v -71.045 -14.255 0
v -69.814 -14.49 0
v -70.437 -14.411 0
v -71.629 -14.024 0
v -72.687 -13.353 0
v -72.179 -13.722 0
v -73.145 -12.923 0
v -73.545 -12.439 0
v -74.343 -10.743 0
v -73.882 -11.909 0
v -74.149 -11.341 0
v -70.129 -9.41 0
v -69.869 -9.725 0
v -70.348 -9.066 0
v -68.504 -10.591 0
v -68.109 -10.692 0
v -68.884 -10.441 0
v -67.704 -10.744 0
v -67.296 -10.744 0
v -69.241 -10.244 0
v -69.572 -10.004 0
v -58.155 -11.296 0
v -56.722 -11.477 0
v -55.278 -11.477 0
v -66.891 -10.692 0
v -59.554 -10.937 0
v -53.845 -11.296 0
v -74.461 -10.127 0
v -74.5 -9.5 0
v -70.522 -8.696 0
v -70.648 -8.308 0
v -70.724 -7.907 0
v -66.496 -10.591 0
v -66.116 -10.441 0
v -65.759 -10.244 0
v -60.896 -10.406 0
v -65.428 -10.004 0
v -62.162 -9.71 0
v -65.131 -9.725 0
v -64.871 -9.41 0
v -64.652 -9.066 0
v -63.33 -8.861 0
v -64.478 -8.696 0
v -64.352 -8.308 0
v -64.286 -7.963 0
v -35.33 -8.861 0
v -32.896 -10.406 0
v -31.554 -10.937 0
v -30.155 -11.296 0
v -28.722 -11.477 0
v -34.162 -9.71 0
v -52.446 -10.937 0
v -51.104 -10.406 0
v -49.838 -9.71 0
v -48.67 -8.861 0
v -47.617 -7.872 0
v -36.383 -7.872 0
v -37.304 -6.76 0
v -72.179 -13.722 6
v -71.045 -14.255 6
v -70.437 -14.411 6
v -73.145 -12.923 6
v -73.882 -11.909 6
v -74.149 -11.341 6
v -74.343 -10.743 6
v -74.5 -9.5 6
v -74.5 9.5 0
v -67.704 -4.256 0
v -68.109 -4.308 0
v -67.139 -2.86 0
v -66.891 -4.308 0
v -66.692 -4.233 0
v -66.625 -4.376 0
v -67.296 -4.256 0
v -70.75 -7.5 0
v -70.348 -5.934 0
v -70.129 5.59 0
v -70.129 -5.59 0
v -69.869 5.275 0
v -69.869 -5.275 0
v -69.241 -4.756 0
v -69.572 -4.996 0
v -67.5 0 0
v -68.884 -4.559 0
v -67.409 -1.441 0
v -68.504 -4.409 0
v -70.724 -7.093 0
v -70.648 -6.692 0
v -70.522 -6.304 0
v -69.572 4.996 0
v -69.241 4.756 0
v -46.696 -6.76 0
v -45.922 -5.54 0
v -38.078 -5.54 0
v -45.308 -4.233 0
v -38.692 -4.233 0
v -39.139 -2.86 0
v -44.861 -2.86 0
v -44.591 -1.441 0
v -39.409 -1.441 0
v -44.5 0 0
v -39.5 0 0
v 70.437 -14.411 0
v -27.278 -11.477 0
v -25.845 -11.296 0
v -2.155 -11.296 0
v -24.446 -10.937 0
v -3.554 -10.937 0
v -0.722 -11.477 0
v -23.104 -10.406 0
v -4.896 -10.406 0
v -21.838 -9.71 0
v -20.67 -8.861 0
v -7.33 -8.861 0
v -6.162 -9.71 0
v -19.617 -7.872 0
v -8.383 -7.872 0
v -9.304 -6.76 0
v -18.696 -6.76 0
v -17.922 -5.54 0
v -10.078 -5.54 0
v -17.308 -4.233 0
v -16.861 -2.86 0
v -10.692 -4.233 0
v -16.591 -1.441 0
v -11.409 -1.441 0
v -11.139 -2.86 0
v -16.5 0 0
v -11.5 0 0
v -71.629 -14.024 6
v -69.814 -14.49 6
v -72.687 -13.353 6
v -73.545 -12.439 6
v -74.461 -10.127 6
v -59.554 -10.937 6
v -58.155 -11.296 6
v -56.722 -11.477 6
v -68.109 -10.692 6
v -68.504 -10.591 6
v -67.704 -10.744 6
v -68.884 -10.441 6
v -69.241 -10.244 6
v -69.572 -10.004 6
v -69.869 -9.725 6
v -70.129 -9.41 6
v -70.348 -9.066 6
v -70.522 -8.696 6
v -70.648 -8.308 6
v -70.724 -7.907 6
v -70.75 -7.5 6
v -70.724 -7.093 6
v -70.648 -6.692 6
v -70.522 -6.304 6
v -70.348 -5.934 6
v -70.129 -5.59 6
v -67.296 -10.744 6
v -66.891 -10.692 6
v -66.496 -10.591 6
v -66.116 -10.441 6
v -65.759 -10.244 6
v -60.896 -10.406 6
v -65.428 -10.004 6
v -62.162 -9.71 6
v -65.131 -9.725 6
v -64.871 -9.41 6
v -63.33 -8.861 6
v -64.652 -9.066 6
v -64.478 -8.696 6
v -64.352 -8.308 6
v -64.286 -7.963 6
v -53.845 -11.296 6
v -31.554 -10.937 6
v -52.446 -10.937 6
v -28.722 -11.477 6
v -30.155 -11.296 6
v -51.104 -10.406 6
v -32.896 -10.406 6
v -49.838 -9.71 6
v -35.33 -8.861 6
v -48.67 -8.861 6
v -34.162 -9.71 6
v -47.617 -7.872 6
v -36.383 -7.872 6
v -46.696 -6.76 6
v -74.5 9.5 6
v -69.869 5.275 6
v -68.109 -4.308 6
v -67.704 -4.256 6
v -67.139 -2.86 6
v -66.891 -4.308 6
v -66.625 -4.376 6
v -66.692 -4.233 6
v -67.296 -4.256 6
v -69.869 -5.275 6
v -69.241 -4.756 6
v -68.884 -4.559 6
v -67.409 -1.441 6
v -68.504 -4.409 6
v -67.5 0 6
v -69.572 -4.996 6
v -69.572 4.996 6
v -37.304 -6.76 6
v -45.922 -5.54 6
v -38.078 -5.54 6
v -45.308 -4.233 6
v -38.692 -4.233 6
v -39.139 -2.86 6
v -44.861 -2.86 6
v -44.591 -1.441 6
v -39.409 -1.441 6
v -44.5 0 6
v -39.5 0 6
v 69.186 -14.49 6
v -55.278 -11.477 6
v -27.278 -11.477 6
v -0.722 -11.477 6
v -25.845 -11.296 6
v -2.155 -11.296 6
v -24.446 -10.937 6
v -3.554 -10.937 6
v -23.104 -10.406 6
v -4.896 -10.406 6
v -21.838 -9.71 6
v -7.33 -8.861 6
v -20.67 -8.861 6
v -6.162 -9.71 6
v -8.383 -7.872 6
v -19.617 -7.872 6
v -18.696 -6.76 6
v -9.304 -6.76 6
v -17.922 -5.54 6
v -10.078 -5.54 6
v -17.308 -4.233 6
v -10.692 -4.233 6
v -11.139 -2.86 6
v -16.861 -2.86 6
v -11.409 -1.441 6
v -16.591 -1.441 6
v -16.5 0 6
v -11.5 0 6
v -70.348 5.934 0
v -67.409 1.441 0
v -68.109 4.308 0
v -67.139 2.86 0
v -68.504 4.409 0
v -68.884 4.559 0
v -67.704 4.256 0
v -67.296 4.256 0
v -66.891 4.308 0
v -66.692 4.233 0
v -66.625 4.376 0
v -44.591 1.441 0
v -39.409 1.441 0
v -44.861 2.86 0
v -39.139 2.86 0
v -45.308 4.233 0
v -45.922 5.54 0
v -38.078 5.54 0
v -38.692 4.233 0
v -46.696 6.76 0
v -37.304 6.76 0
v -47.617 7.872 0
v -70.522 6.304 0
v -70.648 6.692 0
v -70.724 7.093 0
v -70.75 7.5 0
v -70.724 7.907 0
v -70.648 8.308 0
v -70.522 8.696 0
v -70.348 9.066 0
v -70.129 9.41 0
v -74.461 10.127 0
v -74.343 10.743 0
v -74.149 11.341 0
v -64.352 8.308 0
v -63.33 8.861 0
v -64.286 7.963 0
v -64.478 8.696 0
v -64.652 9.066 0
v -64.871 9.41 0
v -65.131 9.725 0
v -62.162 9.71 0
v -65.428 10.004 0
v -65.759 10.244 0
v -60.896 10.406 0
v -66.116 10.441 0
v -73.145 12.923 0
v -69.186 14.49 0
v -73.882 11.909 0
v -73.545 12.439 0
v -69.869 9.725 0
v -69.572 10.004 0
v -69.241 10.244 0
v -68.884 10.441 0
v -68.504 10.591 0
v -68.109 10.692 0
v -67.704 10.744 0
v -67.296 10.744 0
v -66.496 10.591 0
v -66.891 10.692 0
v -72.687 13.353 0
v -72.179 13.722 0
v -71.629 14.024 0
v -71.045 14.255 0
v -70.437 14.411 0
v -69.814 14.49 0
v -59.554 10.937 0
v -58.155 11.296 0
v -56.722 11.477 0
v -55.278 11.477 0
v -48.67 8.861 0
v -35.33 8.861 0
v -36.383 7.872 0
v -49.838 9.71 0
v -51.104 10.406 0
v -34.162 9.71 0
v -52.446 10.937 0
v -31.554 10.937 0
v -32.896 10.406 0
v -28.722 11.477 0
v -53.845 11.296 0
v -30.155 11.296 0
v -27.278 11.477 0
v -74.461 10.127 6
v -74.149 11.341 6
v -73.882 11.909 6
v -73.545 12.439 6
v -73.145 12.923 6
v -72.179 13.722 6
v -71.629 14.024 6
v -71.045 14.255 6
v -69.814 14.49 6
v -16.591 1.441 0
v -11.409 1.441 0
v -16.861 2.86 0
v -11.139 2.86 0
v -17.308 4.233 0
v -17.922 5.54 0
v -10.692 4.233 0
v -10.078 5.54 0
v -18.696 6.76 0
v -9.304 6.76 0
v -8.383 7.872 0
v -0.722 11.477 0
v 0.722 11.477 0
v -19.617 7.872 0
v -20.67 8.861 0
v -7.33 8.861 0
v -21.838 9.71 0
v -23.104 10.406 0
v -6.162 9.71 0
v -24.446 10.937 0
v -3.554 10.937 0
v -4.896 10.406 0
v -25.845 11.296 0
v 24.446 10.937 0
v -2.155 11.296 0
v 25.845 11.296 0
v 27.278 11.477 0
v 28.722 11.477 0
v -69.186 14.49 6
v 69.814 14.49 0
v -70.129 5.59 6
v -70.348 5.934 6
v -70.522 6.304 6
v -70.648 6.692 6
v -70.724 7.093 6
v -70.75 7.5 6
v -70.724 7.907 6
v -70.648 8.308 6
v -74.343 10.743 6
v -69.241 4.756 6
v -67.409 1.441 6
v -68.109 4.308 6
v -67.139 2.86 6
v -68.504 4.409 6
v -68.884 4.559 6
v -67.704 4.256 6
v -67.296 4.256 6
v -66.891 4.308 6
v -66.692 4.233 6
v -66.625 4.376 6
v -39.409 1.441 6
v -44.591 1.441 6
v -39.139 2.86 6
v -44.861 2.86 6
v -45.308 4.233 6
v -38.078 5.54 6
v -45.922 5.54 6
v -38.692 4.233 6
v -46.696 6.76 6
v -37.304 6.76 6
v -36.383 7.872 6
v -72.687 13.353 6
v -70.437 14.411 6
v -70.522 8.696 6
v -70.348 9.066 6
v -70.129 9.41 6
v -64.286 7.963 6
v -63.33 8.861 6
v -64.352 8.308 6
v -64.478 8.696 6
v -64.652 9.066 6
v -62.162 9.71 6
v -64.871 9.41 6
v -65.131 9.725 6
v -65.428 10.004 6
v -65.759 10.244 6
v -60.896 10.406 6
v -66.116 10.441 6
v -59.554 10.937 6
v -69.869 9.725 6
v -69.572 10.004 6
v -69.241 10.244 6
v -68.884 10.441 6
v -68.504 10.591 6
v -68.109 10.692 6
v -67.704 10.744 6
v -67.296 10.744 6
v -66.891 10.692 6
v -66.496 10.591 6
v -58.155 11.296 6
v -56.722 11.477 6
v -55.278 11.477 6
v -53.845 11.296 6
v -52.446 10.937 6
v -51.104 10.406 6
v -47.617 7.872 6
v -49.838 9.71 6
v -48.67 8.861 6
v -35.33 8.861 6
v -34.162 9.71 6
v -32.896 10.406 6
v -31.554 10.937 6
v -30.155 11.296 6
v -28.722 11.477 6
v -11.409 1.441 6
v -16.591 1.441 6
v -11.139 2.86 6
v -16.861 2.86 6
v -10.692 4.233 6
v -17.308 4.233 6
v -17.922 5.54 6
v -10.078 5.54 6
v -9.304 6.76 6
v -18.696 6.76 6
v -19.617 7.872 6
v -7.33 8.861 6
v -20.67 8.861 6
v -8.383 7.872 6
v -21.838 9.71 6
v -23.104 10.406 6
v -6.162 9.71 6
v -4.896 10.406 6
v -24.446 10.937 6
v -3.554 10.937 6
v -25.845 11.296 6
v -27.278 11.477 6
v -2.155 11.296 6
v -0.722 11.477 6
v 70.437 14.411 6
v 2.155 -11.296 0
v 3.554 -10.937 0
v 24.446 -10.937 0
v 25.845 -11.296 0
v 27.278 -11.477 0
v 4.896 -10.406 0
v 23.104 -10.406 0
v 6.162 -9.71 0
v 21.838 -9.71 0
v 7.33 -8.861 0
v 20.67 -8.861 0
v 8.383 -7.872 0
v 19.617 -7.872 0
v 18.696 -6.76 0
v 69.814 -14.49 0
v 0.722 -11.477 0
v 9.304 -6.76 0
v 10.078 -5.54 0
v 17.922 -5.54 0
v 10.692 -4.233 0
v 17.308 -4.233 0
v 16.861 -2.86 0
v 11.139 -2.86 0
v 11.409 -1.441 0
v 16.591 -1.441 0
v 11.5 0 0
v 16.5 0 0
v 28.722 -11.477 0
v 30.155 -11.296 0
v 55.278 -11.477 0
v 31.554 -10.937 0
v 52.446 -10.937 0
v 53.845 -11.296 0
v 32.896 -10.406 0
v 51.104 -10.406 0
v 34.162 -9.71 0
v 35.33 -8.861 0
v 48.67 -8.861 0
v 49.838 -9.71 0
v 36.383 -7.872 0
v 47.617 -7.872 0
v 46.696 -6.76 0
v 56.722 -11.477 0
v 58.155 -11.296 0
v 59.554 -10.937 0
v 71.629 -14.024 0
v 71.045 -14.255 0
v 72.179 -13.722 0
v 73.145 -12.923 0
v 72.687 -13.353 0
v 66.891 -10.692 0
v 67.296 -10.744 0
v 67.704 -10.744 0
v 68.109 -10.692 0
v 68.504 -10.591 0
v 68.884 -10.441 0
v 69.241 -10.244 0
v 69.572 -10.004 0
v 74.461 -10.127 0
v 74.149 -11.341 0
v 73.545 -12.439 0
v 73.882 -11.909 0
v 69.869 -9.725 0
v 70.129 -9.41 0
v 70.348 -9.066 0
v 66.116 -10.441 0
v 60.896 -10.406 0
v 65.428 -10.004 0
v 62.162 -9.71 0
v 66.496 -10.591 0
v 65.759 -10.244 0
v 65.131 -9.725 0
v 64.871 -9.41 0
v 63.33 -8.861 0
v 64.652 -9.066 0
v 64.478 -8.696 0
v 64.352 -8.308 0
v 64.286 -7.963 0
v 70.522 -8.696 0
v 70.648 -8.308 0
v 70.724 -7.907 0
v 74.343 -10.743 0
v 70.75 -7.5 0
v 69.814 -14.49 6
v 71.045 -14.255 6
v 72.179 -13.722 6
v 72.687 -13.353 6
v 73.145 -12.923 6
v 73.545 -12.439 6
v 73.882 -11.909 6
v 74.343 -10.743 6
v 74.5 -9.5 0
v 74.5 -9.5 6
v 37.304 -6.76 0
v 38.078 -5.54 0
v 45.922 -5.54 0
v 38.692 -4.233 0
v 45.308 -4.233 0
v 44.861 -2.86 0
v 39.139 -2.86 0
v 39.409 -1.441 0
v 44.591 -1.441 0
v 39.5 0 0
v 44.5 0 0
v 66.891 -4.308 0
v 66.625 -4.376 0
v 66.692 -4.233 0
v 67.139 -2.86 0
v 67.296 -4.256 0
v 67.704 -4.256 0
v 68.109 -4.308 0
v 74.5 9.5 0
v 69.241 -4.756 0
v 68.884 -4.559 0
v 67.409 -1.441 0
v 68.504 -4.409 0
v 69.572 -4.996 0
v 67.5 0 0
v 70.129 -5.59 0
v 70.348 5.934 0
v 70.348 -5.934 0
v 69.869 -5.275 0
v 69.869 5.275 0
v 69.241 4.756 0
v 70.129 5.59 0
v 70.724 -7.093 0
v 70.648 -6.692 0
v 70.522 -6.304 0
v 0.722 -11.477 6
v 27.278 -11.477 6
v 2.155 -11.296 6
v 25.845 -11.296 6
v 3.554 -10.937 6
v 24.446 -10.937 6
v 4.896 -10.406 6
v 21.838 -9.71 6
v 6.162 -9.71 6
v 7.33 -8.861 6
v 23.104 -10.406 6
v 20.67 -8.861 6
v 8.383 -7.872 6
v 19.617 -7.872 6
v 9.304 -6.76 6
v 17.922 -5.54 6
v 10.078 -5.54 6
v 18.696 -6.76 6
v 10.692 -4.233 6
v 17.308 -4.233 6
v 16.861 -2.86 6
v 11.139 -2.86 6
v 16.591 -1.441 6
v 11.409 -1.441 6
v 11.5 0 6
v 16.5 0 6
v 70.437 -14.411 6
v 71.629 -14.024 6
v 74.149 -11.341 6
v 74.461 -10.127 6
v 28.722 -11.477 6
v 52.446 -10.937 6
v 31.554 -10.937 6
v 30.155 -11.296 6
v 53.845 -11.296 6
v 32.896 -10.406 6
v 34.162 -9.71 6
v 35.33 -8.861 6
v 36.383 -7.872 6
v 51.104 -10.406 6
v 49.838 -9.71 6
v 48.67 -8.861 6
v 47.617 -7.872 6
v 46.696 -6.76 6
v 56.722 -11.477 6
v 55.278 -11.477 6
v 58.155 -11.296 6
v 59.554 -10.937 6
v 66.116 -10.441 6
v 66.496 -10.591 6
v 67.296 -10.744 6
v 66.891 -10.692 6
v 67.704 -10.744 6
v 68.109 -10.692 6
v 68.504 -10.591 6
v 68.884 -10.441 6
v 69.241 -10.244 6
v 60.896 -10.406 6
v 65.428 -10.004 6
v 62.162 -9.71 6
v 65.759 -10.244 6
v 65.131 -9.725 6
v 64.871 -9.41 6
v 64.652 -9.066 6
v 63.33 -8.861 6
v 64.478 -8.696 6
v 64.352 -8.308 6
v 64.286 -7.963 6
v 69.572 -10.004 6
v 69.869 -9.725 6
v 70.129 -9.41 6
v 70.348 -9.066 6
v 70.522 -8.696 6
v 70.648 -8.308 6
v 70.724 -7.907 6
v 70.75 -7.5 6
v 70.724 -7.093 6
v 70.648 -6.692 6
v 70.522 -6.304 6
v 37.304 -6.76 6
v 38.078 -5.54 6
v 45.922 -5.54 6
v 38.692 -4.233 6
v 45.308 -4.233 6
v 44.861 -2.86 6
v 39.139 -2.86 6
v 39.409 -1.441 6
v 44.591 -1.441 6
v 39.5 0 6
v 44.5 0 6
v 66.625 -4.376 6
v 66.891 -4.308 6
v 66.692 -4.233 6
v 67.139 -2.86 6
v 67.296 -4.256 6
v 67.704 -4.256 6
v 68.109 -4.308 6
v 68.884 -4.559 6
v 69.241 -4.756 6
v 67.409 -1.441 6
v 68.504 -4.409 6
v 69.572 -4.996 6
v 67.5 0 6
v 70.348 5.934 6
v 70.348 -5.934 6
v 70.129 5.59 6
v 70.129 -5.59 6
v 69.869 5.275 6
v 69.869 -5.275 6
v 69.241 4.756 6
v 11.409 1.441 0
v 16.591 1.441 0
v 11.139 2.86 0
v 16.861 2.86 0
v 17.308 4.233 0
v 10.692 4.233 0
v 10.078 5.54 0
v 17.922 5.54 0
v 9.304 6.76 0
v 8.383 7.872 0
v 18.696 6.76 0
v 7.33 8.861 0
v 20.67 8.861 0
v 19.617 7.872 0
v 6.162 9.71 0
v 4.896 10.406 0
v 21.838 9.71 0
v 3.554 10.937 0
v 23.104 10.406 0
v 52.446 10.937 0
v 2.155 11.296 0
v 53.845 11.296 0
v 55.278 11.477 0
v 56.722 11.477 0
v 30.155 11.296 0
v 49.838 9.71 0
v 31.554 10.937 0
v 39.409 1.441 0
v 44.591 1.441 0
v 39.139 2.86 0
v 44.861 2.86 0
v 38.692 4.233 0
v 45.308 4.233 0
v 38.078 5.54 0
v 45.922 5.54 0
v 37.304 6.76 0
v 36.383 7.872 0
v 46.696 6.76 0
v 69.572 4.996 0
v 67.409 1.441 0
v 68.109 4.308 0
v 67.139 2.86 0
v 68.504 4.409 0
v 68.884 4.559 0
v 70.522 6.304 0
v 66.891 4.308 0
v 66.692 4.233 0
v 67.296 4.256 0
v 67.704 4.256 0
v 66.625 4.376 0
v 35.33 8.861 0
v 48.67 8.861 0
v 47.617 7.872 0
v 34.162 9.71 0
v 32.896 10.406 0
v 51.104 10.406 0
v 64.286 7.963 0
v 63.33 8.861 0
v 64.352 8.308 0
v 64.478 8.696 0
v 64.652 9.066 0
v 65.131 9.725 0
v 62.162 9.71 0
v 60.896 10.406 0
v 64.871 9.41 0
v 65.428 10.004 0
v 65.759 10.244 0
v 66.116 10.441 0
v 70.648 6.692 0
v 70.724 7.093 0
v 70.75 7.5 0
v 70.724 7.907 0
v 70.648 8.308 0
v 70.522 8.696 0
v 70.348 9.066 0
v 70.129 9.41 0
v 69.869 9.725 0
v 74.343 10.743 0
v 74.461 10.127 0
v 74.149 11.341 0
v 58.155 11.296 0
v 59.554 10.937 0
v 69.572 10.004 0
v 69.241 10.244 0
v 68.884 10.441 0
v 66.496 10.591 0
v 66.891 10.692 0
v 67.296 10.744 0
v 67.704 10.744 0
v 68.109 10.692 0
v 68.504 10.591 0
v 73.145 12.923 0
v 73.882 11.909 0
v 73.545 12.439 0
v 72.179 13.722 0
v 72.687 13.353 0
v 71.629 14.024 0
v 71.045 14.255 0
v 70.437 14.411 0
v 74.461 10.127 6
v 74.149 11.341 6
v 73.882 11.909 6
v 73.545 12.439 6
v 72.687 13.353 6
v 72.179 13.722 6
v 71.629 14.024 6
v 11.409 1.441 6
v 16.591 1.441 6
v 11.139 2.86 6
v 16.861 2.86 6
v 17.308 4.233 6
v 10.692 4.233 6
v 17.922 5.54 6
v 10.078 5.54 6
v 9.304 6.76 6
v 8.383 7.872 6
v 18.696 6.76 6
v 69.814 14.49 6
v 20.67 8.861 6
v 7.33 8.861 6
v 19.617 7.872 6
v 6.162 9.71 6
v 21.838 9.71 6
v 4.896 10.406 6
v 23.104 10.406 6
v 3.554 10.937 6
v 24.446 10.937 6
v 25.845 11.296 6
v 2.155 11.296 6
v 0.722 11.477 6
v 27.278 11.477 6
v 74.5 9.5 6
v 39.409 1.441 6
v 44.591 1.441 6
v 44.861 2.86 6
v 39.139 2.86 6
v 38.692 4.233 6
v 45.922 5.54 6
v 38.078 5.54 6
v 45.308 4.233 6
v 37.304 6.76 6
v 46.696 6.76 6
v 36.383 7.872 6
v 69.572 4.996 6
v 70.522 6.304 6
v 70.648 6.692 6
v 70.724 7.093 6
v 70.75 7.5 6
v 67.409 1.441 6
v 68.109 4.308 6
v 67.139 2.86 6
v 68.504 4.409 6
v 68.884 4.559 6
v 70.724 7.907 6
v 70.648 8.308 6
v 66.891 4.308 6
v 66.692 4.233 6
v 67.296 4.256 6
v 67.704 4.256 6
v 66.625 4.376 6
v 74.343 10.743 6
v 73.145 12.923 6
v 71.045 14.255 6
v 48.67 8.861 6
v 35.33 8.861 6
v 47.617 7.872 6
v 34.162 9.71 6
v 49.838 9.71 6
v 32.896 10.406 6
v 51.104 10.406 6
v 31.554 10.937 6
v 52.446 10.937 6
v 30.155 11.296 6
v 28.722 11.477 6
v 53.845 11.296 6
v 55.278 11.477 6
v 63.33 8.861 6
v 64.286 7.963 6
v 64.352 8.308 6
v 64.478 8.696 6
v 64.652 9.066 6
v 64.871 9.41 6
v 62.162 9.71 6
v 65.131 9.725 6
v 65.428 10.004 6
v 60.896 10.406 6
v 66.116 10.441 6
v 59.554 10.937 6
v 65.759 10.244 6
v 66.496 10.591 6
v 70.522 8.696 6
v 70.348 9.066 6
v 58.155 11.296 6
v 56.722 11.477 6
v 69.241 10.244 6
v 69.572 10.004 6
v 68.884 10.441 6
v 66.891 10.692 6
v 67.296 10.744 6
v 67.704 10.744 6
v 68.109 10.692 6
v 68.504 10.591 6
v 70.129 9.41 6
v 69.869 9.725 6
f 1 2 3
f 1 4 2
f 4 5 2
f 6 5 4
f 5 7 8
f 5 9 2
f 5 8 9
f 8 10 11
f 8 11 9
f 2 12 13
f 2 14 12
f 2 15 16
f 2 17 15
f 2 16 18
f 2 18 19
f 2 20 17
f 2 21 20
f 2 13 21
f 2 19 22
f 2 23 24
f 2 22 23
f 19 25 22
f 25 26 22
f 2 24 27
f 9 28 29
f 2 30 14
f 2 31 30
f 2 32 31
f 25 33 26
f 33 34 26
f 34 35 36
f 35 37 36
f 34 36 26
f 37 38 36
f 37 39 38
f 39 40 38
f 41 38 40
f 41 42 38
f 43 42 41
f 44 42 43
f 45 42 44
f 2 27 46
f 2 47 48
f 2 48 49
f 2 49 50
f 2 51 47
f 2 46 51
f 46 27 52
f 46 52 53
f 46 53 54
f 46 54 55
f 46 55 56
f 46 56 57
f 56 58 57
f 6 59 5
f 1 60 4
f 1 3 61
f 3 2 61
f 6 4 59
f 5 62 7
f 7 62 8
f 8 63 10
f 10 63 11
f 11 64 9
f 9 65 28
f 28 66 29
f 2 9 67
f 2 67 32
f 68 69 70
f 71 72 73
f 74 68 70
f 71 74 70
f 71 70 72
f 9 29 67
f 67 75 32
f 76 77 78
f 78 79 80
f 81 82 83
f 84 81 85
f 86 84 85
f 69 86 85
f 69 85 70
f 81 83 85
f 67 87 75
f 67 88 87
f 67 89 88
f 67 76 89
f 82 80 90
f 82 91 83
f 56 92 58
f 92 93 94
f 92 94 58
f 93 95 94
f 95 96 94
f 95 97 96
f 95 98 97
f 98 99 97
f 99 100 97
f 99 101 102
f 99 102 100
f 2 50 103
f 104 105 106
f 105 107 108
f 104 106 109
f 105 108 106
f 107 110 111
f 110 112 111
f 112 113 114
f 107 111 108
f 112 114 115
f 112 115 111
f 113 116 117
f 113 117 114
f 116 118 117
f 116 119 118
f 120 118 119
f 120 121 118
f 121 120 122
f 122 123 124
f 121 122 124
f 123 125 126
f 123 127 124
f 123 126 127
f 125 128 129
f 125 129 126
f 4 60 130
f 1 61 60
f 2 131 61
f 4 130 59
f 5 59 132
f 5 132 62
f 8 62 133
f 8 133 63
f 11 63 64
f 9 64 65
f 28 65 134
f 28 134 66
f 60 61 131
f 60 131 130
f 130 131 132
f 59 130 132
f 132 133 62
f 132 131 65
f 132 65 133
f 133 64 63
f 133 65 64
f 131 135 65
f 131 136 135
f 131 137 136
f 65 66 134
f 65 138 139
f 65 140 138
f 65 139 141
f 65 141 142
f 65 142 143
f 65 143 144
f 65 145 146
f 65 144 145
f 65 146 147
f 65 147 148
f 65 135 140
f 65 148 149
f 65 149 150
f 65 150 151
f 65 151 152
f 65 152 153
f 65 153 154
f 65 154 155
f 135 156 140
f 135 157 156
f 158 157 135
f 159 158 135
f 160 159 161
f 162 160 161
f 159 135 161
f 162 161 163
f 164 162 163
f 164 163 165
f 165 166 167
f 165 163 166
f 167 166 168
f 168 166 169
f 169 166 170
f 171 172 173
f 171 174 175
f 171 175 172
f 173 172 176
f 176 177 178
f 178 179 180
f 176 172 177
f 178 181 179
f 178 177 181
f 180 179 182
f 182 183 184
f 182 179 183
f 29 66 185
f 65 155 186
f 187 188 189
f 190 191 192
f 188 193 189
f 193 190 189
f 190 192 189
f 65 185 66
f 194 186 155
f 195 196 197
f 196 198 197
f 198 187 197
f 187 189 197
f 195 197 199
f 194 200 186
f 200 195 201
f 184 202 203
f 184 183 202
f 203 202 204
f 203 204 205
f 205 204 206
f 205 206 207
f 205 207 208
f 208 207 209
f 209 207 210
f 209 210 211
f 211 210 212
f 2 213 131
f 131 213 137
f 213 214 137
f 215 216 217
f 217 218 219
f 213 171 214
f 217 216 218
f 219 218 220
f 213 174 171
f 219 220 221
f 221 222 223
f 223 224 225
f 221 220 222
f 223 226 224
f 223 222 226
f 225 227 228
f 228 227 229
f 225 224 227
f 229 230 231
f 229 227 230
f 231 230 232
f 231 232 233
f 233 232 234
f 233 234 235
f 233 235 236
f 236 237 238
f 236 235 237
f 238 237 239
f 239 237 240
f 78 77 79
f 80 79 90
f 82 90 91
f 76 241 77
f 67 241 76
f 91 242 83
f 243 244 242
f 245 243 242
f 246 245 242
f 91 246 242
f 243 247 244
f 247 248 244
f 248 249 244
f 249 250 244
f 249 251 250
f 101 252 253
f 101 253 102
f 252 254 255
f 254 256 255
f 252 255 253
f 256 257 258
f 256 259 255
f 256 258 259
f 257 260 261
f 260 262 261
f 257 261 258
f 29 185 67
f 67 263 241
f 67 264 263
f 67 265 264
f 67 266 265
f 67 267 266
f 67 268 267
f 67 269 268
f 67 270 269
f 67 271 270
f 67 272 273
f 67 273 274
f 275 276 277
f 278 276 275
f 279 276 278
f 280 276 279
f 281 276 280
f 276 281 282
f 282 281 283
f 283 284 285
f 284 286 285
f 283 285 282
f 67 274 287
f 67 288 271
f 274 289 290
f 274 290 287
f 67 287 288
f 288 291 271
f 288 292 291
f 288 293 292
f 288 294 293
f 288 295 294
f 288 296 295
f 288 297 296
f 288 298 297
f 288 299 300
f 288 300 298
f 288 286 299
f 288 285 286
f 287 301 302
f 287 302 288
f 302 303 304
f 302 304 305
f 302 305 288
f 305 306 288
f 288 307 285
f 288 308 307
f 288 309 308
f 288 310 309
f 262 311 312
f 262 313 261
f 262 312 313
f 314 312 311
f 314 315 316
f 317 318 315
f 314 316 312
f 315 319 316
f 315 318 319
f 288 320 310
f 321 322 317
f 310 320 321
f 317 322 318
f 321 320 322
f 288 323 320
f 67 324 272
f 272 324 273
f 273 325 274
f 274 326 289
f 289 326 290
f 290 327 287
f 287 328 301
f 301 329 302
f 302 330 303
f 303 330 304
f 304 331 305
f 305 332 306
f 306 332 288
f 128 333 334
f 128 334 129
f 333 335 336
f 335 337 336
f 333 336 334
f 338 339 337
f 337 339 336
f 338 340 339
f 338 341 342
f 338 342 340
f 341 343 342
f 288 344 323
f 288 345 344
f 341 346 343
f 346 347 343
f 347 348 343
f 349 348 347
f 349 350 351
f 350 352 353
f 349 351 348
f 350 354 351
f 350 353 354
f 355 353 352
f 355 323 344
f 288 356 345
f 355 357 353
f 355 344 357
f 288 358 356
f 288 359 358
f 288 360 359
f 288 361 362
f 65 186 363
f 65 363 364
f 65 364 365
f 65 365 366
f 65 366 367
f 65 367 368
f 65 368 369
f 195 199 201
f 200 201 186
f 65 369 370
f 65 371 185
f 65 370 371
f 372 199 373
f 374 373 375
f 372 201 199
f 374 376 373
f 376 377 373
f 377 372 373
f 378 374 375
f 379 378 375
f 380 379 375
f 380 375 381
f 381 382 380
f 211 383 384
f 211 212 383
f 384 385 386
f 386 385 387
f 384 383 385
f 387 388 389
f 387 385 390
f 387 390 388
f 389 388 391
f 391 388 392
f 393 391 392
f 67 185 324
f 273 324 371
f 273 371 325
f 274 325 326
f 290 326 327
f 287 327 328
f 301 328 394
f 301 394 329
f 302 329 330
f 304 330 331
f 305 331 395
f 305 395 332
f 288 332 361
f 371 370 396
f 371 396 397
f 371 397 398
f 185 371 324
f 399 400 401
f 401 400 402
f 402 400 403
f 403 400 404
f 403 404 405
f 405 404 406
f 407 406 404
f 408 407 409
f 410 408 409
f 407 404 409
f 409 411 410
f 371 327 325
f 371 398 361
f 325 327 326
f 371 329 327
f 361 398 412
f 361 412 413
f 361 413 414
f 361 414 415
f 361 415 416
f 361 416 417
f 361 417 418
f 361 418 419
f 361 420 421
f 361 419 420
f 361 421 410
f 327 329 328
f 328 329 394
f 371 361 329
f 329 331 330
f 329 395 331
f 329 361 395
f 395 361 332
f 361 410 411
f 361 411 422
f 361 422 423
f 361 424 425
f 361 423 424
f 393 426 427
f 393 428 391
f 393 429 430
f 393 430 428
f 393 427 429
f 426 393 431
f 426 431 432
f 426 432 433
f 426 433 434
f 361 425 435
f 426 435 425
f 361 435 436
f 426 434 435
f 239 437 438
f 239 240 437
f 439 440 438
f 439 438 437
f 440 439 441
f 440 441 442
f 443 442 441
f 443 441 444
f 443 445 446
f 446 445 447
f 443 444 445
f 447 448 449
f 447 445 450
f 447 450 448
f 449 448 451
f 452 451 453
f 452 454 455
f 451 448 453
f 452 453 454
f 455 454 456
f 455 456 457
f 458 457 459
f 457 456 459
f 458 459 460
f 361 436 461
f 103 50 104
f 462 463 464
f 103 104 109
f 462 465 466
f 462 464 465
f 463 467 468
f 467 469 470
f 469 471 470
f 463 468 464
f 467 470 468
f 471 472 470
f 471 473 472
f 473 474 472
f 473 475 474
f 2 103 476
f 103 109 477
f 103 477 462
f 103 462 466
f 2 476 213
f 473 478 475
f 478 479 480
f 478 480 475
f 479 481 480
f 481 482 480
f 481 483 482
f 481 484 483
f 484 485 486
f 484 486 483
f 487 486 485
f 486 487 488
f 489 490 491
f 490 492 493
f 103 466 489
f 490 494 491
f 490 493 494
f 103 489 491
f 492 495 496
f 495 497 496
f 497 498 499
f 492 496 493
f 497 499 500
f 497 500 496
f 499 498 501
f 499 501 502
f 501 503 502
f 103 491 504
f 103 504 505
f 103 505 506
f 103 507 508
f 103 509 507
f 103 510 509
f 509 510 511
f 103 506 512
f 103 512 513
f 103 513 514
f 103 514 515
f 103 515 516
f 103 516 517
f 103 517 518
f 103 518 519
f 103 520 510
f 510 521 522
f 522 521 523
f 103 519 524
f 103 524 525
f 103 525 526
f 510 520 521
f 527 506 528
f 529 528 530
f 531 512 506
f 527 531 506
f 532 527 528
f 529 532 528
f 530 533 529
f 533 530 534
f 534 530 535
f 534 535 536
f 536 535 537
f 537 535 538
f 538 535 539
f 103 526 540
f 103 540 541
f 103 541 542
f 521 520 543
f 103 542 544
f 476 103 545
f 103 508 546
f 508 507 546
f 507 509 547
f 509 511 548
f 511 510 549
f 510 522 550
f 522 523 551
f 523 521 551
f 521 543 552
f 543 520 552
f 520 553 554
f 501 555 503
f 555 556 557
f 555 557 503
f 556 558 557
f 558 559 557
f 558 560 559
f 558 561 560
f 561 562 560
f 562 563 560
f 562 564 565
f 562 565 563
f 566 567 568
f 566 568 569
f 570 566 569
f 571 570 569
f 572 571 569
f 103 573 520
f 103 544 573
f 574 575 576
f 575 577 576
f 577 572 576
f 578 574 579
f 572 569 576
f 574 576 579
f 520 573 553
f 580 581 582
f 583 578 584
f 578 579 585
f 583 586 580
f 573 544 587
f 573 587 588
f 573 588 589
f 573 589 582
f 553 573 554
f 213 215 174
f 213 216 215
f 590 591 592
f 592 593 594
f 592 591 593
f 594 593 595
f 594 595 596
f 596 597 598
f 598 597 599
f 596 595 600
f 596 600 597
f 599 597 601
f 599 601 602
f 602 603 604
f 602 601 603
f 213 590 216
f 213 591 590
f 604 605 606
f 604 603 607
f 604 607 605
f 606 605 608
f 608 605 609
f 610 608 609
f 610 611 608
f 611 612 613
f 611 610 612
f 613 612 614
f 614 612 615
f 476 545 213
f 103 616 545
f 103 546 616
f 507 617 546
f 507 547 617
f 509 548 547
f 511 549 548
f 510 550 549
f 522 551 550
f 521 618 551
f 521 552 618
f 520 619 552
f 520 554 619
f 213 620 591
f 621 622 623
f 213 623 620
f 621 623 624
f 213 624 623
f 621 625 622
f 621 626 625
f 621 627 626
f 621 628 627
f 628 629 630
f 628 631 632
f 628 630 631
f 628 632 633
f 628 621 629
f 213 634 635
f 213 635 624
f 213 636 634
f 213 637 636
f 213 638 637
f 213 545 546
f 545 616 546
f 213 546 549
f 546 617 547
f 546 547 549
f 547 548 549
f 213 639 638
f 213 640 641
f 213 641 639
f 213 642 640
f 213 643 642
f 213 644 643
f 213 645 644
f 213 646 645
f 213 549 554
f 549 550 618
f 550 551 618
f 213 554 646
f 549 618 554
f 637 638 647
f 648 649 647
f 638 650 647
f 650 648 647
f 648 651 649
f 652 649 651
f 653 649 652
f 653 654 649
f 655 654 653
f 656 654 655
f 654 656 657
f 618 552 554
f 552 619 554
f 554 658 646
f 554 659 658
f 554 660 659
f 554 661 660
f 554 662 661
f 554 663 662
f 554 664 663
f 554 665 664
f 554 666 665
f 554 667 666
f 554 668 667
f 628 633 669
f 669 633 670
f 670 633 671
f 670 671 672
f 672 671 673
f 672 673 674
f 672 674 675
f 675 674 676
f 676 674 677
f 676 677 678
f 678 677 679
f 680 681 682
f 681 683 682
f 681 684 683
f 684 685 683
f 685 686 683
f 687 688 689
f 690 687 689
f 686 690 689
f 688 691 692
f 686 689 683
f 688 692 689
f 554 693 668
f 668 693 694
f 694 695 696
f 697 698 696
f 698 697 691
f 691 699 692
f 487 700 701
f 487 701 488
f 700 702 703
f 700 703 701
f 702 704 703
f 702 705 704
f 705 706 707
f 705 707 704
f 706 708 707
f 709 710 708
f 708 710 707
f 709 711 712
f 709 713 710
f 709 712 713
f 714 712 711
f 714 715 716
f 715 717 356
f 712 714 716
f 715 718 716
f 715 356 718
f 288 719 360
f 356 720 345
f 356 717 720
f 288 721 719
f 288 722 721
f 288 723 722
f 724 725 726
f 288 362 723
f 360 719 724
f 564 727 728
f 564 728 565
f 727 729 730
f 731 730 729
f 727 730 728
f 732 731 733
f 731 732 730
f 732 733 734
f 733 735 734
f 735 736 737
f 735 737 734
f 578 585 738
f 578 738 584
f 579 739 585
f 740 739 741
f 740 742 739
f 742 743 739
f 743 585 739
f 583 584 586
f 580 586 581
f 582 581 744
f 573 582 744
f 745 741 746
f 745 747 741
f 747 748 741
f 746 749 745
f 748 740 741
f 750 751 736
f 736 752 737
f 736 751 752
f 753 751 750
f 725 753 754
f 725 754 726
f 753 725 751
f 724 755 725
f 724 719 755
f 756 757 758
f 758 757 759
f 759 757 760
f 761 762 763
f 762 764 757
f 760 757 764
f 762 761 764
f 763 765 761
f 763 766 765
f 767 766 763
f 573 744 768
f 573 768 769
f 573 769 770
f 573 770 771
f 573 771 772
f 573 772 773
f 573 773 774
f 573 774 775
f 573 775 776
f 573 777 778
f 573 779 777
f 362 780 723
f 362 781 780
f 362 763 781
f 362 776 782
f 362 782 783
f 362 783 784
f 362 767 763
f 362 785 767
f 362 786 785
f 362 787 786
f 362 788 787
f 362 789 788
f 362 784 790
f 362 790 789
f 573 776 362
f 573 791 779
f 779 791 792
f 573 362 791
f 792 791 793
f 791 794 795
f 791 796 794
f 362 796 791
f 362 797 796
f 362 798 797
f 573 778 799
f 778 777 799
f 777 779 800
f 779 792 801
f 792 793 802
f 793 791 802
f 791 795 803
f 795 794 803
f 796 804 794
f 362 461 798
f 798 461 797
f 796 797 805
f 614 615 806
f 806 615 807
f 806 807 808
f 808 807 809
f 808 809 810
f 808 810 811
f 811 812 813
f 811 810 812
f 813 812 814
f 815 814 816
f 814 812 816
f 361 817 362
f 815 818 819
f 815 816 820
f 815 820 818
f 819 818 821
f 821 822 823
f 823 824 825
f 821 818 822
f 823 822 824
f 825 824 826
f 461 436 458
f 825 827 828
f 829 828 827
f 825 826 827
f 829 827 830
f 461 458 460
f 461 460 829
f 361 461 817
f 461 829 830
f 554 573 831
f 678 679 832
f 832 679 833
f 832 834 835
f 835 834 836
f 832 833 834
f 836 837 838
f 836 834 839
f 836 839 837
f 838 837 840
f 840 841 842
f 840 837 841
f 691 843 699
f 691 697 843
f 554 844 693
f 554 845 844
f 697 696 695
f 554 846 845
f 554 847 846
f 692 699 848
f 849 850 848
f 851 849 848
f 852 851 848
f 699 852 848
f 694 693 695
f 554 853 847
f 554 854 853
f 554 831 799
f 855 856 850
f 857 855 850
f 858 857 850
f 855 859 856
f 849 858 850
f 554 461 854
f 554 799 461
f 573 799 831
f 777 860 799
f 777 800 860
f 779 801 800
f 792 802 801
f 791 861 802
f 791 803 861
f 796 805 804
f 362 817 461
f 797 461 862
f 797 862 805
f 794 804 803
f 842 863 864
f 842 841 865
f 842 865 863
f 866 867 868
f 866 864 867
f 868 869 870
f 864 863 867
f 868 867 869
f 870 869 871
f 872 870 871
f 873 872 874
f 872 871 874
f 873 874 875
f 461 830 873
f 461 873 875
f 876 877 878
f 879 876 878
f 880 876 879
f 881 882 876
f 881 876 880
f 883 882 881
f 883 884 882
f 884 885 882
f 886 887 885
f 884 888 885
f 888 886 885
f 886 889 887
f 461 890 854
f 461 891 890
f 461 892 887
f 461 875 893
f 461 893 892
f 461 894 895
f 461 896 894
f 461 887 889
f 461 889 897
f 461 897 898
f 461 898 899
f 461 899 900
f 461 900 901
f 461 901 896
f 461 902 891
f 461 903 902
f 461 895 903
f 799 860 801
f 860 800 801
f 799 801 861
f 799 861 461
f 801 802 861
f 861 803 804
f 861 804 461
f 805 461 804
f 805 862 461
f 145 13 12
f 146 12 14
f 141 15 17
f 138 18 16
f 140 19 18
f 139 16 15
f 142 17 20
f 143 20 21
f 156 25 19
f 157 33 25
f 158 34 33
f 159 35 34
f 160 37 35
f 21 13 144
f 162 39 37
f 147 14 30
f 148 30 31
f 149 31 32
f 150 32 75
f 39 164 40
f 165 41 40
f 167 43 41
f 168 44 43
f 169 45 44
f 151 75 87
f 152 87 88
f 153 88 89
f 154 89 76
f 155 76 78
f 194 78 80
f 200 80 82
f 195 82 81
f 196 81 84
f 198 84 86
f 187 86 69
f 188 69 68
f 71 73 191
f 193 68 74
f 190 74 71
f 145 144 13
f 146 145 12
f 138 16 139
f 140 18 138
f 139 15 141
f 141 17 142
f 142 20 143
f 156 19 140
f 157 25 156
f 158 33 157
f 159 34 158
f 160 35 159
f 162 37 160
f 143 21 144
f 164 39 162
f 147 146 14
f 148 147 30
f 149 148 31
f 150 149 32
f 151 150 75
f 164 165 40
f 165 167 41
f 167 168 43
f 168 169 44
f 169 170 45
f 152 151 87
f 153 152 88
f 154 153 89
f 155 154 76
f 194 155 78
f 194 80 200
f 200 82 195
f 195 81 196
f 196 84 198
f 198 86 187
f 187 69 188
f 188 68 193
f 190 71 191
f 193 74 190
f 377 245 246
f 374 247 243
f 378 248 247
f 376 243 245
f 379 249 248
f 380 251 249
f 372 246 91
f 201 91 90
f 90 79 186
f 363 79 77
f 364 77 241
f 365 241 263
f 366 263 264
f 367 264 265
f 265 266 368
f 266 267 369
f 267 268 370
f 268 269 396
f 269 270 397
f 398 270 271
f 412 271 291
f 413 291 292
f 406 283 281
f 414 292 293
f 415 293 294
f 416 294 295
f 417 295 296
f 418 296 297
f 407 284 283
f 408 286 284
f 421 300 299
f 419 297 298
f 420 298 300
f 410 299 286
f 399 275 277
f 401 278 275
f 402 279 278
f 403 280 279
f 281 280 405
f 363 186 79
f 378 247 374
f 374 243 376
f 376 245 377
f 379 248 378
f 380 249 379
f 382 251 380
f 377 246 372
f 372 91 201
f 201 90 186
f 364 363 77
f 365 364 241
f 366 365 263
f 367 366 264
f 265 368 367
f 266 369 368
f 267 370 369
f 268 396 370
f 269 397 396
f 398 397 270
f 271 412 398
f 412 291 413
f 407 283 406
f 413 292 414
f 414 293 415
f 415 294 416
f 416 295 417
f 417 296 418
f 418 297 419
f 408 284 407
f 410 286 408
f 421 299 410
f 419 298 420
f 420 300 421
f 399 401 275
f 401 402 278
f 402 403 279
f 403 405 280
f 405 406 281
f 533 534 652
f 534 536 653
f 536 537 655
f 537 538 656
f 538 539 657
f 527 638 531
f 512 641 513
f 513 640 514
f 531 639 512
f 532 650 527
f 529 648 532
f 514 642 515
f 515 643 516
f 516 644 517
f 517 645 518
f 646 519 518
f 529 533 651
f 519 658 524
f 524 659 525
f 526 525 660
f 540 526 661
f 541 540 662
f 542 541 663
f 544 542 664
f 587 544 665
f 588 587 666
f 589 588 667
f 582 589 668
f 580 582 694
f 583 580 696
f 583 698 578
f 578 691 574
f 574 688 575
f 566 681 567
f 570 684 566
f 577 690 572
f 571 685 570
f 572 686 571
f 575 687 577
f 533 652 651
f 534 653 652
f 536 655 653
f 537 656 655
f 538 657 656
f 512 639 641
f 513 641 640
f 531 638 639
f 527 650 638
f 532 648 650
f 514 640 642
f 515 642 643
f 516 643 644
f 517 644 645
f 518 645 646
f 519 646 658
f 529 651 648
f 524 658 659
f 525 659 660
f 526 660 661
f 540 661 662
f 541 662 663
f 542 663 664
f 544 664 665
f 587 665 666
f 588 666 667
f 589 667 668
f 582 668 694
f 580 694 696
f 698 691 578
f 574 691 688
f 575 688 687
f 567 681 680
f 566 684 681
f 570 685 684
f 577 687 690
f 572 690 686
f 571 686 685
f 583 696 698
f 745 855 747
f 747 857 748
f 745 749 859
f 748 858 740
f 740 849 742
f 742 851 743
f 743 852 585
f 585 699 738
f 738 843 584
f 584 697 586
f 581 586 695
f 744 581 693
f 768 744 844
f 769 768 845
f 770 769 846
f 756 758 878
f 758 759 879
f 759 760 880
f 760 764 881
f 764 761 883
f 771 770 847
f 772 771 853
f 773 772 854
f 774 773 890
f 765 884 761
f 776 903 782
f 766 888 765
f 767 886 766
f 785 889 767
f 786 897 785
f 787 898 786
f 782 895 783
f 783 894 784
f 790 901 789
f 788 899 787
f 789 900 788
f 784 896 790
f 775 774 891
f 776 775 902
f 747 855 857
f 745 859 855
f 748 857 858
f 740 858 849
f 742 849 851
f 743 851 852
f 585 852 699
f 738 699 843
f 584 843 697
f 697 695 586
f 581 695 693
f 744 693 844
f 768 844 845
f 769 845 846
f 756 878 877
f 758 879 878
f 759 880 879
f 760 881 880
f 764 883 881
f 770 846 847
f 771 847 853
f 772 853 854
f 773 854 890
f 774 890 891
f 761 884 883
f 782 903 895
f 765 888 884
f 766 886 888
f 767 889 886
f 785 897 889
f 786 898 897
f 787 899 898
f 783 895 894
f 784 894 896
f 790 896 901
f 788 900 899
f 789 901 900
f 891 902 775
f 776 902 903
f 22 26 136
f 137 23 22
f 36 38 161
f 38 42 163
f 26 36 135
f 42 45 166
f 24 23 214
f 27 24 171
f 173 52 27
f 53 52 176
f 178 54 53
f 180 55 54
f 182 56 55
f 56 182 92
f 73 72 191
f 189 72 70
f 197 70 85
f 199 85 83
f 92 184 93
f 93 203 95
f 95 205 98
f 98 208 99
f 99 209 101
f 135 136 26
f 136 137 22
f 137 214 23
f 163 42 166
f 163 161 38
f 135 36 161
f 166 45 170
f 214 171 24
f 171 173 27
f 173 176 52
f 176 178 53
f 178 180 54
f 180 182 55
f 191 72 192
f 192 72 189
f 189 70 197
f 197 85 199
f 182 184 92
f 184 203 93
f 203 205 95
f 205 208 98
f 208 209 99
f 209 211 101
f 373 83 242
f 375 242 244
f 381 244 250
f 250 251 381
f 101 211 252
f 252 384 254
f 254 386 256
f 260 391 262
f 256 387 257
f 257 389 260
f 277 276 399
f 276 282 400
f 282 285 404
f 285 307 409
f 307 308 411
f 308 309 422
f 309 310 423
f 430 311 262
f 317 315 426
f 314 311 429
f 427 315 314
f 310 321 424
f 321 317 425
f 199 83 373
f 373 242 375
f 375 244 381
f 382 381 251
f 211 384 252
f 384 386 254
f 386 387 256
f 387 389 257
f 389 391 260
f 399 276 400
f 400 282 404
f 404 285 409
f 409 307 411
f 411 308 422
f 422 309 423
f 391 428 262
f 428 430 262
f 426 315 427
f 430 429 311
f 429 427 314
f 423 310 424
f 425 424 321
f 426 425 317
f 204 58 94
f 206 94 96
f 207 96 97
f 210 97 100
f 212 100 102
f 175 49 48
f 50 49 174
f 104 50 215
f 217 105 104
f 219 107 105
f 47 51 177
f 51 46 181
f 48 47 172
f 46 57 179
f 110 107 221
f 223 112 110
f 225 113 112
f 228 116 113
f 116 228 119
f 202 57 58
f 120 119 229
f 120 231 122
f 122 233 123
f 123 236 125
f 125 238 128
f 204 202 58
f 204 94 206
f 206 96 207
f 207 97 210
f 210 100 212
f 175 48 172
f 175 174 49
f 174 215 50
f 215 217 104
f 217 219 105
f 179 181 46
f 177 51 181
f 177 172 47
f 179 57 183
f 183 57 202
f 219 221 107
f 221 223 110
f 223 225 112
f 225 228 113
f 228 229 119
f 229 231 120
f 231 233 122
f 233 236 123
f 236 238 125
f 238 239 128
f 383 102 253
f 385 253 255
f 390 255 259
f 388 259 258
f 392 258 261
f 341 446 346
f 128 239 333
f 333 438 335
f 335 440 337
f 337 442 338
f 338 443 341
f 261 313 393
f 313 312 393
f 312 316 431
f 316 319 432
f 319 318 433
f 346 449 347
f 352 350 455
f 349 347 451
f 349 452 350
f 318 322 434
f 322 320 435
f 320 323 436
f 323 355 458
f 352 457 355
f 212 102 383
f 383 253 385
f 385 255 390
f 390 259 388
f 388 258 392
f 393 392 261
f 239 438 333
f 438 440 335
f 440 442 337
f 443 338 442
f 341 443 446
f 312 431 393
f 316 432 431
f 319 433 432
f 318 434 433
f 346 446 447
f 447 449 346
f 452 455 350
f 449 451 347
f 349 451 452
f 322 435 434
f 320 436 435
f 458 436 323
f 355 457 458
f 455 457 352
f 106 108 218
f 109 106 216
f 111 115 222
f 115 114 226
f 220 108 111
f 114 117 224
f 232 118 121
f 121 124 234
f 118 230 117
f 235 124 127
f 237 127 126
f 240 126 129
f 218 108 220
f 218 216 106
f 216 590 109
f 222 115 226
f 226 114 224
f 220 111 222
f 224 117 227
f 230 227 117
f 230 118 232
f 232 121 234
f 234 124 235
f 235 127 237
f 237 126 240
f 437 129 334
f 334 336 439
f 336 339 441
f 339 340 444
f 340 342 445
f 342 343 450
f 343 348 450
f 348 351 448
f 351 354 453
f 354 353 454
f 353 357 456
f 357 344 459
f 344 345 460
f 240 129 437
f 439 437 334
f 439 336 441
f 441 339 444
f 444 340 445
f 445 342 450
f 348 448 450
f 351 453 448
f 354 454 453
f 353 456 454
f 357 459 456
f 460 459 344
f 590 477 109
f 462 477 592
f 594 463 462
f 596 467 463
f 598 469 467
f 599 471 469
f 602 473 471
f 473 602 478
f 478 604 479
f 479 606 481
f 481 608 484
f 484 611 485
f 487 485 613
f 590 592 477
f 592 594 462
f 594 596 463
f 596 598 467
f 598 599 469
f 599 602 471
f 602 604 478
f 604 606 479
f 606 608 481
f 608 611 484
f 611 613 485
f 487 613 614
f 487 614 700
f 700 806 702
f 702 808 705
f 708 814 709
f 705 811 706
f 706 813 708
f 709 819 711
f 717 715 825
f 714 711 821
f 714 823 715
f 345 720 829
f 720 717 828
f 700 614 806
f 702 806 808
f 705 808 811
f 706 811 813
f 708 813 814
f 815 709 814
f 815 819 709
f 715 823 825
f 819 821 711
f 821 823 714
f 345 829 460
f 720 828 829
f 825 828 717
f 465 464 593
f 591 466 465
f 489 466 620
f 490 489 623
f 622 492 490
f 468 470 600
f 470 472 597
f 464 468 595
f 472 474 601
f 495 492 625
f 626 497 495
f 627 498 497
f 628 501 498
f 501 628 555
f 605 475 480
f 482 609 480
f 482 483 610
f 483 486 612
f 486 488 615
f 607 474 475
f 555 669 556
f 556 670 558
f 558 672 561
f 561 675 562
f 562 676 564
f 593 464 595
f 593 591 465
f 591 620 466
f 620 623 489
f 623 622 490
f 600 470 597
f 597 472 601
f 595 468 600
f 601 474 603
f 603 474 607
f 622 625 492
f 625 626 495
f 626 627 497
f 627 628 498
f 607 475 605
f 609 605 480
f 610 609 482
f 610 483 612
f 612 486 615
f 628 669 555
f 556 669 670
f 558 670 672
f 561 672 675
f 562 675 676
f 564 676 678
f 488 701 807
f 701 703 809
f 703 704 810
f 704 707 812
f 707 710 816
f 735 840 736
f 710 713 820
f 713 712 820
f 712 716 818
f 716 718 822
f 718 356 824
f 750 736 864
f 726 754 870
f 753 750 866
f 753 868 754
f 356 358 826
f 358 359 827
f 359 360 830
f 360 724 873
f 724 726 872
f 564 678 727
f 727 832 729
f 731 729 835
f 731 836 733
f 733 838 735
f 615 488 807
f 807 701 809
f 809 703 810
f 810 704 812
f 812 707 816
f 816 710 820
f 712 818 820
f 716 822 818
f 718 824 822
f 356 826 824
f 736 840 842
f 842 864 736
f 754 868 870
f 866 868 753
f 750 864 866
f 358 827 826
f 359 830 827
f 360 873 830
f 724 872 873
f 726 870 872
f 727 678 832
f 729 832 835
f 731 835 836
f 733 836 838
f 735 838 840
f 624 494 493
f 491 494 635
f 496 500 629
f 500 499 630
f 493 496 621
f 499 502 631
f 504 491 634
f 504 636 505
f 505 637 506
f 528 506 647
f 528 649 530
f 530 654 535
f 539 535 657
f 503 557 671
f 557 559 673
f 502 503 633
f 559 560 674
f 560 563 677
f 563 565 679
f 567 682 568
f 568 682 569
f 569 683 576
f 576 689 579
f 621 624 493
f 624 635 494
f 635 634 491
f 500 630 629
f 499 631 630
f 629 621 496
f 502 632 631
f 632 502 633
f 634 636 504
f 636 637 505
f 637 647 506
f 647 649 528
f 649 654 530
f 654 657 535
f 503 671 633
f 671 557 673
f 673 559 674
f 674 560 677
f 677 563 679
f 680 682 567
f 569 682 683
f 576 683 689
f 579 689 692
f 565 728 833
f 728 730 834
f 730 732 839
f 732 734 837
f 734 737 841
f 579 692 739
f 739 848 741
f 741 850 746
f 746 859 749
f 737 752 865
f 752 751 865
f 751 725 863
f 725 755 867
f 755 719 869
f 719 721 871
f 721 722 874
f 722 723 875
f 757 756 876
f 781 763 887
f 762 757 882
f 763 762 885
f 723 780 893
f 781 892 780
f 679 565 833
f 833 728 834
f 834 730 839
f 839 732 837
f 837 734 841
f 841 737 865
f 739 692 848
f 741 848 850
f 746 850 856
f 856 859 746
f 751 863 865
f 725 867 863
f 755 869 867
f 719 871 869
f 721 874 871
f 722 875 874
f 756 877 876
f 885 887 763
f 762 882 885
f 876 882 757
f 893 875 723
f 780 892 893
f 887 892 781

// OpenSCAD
$fn = 50;

difference() {
	union() {
		hull() {
			translate(v = [-69.5, 9.5, 0]) {
				cylinder(h = 6, r = 5);
			}
			translate(v = [69.5, 9.5, 0]) {
				cylinder(h = 6, r = 5);
			}
			translate(v = [-69.5, -9.5, 0]) {
				cylinder(h = 6, r = 5);
			}
			translate(v = [69.5, -9.5, 0]) {
				cylinder(h = 6, r = 5);
			}
		}
	}
	union() {
		translate(v = [-67.5, -7.5, -100.0]) {
			cylinder(h = 200, r = 3.25);
		}
		translate(v = [-67.5, 7.5, -100.0]) {
			cylinder(h = 200, r = 3.25);
		}
		translate(v = [67.5, -7.5, -100.0]) {
			cylinder(h = 200, r = 3.25);
		}
		translate(v = [67.5, 7.5, -100.0]) {
			cylinder(h = 200, r = 3.25);
		}
		translate(v = [-67.5, -7.5, -100.0]) {
			cylinder(h = 200, r = 1.8);
		}
		translate(v = [-67.5, 7.5, -100.0]) {
			cylinder(h = 200, r = 1.8);
		}
		translate(v = [67.5, -7.5, -100.0]) {
			cylinder(h = 200, r = 1.8);
		}
		translate(v = [67.5, 7.5, -100.0]) {
			cylinder(h = 200, r = 1.8);
		}
		translate(v = [-56.0, 0, 0.0]) {
			cylinder(h = 6, r = 11.5);
		}
		translate(v = [-28.0, 0, 0.0]) {
			cylinder(h = 6, r = 11.5);
		}
		cylinder(h = 6, r = 11.5);
		translate(v = [28.0, 0, 0.0]) {
			cylinder(h = 6, r = 11.5);
		}
		translate(v = [56.0, 0, 0.0]) {
			cylinder(h = 6, r = 11.5);
		}
	}
}
